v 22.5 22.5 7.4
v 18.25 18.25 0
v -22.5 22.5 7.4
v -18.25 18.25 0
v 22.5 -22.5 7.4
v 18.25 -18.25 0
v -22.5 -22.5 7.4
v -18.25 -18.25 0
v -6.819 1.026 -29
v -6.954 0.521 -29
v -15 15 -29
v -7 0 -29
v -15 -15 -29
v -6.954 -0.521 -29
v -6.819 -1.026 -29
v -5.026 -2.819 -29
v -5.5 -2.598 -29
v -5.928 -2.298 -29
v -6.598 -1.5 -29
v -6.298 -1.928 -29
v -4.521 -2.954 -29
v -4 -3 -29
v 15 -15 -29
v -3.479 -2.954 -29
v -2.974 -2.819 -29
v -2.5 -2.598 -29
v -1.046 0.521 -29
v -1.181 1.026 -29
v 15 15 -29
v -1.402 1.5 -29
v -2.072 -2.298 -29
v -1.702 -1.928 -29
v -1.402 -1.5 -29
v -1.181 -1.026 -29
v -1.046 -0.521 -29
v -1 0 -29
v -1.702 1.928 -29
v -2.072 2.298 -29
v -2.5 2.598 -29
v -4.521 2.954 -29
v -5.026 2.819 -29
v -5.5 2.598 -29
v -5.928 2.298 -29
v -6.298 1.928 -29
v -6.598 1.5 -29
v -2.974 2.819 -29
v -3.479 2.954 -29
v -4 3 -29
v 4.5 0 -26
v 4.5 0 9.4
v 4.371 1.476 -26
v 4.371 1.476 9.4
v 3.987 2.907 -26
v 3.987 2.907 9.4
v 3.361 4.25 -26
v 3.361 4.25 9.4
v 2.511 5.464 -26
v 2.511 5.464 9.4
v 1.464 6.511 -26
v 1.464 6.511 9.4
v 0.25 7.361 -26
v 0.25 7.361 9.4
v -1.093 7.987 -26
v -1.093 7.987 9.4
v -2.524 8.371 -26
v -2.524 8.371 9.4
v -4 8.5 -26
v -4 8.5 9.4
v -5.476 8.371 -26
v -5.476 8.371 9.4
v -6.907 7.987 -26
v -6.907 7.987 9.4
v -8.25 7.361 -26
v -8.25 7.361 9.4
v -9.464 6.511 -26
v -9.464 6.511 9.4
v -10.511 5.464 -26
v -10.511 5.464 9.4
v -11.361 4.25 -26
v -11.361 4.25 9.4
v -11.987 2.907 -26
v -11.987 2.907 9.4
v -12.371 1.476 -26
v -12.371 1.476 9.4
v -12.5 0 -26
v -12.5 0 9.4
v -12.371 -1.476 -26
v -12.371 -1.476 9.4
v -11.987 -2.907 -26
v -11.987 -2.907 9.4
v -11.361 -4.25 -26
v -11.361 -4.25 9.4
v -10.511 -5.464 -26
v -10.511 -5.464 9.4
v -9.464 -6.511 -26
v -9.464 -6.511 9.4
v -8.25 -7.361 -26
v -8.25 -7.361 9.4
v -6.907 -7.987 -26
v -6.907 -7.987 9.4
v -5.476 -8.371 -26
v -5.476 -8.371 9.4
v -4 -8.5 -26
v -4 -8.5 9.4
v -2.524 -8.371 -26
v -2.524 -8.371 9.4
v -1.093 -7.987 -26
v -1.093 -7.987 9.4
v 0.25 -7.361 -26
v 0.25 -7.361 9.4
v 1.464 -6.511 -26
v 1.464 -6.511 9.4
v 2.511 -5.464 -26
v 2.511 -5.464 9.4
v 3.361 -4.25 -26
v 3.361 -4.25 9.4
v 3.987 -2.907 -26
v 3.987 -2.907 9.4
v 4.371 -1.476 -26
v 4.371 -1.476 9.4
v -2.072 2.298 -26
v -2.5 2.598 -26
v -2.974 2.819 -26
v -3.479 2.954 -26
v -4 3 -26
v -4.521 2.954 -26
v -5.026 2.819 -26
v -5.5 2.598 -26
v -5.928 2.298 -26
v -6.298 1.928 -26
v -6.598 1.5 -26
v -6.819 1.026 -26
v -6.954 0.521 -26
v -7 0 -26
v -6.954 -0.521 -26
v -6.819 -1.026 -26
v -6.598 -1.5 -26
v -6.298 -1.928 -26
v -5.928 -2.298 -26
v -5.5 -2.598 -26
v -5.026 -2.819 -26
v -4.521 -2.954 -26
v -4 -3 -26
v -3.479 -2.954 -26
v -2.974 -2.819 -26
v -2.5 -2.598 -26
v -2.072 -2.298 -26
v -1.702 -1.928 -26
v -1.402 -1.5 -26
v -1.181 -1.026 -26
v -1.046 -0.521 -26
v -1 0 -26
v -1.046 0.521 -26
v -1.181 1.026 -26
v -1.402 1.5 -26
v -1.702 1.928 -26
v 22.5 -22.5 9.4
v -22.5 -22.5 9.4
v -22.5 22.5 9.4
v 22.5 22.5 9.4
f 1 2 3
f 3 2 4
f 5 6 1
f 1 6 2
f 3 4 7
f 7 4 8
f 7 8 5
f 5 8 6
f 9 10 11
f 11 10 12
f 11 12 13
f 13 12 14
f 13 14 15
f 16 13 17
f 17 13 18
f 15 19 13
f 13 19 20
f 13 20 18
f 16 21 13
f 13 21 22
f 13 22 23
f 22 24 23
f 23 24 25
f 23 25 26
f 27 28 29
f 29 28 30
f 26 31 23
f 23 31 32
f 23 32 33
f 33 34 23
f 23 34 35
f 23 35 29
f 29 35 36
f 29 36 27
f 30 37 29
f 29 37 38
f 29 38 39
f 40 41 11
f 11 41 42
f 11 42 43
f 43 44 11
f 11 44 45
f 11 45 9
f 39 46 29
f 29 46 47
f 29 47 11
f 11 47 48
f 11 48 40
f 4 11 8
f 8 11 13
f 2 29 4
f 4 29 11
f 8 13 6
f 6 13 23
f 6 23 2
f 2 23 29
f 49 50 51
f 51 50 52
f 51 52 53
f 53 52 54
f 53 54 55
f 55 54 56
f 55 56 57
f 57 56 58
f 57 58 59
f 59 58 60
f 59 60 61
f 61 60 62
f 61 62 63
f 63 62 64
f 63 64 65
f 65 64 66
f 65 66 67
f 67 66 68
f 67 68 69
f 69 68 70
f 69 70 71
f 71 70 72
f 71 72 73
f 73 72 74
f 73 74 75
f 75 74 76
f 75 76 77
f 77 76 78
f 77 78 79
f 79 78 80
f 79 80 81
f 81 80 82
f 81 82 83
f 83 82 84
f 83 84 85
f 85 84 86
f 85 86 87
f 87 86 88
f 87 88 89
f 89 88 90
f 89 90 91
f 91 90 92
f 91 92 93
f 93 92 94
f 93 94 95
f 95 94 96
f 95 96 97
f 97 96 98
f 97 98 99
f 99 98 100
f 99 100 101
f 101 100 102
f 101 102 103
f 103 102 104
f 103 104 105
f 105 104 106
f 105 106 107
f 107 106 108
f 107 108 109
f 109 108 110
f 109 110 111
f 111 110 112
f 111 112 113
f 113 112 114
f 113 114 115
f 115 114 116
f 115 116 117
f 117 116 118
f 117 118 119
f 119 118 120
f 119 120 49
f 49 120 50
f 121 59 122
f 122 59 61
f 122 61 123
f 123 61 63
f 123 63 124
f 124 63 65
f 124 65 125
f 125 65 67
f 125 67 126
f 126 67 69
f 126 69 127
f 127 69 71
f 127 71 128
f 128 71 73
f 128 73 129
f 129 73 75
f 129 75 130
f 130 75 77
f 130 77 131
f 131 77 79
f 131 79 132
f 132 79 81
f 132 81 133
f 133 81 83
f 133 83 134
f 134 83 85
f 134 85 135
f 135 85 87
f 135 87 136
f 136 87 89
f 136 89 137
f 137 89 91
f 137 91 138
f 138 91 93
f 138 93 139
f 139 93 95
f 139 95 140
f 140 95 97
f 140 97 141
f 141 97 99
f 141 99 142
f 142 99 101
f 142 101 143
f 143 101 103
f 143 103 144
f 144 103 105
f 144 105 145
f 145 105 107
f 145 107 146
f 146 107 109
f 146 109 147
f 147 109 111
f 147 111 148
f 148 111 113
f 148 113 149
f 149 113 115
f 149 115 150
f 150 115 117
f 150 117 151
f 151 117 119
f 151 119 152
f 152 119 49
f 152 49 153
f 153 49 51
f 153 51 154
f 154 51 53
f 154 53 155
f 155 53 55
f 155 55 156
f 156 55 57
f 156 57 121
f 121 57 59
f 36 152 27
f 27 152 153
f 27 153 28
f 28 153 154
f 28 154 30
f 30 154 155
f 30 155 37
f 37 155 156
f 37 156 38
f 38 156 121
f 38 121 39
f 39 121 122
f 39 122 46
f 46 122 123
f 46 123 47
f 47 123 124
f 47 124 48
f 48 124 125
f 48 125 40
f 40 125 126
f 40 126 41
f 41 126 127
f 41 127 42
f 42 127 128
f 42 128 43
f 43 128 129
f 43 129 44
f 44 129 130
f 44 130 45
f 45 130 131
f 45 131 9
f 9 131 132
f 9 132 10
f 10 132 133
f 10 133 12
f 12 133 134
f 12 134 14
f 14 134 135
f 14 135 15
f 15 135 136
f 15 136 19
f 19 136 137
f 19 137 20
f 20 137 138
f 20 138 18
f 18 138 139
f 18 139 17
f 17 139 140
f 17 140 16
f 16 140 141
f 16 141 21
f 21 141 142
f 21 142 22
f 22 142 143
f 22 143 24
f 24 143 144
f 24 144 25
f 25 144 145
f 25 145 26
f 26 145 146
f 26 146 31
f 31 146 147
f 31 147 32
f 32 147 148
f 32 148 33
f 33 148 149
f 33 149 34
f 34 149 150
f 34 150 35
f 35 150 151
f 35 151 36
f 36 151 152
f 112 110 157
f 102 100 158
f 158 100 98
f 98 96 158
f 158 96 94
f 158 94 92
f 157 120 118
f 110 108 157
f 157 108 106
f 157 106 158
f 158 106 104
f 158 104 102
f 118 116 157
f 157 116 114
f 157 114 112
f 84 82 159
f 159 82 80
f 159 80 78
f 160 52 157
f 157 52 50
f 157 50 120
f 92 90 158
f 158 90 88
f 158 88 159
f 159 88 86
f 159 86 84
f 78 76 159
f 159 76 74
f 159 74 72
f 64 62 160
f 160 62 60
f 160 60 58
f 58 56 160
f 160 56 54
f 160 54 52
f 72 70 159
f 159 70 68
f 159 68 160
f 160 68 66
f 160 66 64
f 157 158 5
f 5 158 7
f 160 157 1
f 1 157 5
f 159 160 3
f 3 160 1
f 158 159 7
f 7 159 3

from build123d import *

# Parameters (mm, degrees)
SKETCH_4_R          = 8.5
CUT_EXTRUDE_1_DEPTH = 33.4
SKETCH_5_R          = 3
CUT_EXTRUDE_2_DEPTH = 33.4
EXTRUDE_START       = 2
SKETCH_6_W          = 45
SKETCH_6_H          = 45
SKETCH_6_R          = 8.5
EXTRUDE_1_DEPTH     = 2


with BuildPart() as part:
    # 草图1 → 放样1 section 0
    with BuildSketch(Plane.XY):
        with BuildLine():
            Line((-18.25, 18.25), (18.25, 18.25))
            Line((18.25, 18.25), (18.25, -18.25))
            Line((18.25, -18.25), (-18.25, -18.25))
            Line((-18.25, -18.25), (-18.25, 18.25))
        make_face()
    # 草图2 → 放样1 section 1
    with BuildSketch(Plane.XY.offset(7.4)):
        with BuildLine():
            Line((-22.5, 22.5), (22.5, 22.5))
            Line((22.5, 22.5), (22.5, -22.5))
            Line((22.5, -22.5), (-22.5, -22.5))
            Line((-22.5, -22.5), (-22.5, 22.5))
        make_face()
    loft()

    # 草图3 → section 0 of loft_2
    with BuildSketch(Plane(origin=(0, 0, -29), x_dir=(-1, 0, 0), z_dir=(0, 0, -1)), mode=Mode.PRIVATE) as loft_2_s0:
        with BuildLine():
            Line((-15, 15), (15, 15))
            Line((15, 15), (15, -15))
            Line((15, -15), (-15, -15))
            Line((-15, -15), (-15, 15))
        make_face()
    # loft up to a face of the part (loft_2)
    loft([loft_2_s0.sketch, part.faces().sort_by_distance((0, 0, 0))[0]])

    # 草图4 → 切除-拉伸1 (cut)
    with BuildSketch(Plane.XY.offset(7.4)):
        with Locations((-4, 0)):
            Circle(SKETCH_4_R)
    extrude(amount=-CUT_EXTRUDE_1_DEPTH, mode=Mode.SUBTRACT)

    # 草图5 → 切除-拉伸2 (cut)
    with BuildSketch(Plane.XY.offset(-26)):
        with Locations((-4, 0)):
            Circle(SKETCH_5_R)
    extrude(amount=-CUT_EXTRUDE_2_DEPTH, mode=Mode.SUBTRACT)

    # 草图6 → 凸台-拉伸1 (add)
    with BuildSketch(Plane.XY.offset(7.4).offset(EXTRUDE_START)):
        Rectangle(SKETCH_6_W, SKETCH_6_H)
        with Locations((-4, 0)):
            Circle(SKETCH_6_R, mode=Mode.SUBTRACT)
    extrude(amount=-EXTRUDE_1_DEPTH)


solid = part.part
